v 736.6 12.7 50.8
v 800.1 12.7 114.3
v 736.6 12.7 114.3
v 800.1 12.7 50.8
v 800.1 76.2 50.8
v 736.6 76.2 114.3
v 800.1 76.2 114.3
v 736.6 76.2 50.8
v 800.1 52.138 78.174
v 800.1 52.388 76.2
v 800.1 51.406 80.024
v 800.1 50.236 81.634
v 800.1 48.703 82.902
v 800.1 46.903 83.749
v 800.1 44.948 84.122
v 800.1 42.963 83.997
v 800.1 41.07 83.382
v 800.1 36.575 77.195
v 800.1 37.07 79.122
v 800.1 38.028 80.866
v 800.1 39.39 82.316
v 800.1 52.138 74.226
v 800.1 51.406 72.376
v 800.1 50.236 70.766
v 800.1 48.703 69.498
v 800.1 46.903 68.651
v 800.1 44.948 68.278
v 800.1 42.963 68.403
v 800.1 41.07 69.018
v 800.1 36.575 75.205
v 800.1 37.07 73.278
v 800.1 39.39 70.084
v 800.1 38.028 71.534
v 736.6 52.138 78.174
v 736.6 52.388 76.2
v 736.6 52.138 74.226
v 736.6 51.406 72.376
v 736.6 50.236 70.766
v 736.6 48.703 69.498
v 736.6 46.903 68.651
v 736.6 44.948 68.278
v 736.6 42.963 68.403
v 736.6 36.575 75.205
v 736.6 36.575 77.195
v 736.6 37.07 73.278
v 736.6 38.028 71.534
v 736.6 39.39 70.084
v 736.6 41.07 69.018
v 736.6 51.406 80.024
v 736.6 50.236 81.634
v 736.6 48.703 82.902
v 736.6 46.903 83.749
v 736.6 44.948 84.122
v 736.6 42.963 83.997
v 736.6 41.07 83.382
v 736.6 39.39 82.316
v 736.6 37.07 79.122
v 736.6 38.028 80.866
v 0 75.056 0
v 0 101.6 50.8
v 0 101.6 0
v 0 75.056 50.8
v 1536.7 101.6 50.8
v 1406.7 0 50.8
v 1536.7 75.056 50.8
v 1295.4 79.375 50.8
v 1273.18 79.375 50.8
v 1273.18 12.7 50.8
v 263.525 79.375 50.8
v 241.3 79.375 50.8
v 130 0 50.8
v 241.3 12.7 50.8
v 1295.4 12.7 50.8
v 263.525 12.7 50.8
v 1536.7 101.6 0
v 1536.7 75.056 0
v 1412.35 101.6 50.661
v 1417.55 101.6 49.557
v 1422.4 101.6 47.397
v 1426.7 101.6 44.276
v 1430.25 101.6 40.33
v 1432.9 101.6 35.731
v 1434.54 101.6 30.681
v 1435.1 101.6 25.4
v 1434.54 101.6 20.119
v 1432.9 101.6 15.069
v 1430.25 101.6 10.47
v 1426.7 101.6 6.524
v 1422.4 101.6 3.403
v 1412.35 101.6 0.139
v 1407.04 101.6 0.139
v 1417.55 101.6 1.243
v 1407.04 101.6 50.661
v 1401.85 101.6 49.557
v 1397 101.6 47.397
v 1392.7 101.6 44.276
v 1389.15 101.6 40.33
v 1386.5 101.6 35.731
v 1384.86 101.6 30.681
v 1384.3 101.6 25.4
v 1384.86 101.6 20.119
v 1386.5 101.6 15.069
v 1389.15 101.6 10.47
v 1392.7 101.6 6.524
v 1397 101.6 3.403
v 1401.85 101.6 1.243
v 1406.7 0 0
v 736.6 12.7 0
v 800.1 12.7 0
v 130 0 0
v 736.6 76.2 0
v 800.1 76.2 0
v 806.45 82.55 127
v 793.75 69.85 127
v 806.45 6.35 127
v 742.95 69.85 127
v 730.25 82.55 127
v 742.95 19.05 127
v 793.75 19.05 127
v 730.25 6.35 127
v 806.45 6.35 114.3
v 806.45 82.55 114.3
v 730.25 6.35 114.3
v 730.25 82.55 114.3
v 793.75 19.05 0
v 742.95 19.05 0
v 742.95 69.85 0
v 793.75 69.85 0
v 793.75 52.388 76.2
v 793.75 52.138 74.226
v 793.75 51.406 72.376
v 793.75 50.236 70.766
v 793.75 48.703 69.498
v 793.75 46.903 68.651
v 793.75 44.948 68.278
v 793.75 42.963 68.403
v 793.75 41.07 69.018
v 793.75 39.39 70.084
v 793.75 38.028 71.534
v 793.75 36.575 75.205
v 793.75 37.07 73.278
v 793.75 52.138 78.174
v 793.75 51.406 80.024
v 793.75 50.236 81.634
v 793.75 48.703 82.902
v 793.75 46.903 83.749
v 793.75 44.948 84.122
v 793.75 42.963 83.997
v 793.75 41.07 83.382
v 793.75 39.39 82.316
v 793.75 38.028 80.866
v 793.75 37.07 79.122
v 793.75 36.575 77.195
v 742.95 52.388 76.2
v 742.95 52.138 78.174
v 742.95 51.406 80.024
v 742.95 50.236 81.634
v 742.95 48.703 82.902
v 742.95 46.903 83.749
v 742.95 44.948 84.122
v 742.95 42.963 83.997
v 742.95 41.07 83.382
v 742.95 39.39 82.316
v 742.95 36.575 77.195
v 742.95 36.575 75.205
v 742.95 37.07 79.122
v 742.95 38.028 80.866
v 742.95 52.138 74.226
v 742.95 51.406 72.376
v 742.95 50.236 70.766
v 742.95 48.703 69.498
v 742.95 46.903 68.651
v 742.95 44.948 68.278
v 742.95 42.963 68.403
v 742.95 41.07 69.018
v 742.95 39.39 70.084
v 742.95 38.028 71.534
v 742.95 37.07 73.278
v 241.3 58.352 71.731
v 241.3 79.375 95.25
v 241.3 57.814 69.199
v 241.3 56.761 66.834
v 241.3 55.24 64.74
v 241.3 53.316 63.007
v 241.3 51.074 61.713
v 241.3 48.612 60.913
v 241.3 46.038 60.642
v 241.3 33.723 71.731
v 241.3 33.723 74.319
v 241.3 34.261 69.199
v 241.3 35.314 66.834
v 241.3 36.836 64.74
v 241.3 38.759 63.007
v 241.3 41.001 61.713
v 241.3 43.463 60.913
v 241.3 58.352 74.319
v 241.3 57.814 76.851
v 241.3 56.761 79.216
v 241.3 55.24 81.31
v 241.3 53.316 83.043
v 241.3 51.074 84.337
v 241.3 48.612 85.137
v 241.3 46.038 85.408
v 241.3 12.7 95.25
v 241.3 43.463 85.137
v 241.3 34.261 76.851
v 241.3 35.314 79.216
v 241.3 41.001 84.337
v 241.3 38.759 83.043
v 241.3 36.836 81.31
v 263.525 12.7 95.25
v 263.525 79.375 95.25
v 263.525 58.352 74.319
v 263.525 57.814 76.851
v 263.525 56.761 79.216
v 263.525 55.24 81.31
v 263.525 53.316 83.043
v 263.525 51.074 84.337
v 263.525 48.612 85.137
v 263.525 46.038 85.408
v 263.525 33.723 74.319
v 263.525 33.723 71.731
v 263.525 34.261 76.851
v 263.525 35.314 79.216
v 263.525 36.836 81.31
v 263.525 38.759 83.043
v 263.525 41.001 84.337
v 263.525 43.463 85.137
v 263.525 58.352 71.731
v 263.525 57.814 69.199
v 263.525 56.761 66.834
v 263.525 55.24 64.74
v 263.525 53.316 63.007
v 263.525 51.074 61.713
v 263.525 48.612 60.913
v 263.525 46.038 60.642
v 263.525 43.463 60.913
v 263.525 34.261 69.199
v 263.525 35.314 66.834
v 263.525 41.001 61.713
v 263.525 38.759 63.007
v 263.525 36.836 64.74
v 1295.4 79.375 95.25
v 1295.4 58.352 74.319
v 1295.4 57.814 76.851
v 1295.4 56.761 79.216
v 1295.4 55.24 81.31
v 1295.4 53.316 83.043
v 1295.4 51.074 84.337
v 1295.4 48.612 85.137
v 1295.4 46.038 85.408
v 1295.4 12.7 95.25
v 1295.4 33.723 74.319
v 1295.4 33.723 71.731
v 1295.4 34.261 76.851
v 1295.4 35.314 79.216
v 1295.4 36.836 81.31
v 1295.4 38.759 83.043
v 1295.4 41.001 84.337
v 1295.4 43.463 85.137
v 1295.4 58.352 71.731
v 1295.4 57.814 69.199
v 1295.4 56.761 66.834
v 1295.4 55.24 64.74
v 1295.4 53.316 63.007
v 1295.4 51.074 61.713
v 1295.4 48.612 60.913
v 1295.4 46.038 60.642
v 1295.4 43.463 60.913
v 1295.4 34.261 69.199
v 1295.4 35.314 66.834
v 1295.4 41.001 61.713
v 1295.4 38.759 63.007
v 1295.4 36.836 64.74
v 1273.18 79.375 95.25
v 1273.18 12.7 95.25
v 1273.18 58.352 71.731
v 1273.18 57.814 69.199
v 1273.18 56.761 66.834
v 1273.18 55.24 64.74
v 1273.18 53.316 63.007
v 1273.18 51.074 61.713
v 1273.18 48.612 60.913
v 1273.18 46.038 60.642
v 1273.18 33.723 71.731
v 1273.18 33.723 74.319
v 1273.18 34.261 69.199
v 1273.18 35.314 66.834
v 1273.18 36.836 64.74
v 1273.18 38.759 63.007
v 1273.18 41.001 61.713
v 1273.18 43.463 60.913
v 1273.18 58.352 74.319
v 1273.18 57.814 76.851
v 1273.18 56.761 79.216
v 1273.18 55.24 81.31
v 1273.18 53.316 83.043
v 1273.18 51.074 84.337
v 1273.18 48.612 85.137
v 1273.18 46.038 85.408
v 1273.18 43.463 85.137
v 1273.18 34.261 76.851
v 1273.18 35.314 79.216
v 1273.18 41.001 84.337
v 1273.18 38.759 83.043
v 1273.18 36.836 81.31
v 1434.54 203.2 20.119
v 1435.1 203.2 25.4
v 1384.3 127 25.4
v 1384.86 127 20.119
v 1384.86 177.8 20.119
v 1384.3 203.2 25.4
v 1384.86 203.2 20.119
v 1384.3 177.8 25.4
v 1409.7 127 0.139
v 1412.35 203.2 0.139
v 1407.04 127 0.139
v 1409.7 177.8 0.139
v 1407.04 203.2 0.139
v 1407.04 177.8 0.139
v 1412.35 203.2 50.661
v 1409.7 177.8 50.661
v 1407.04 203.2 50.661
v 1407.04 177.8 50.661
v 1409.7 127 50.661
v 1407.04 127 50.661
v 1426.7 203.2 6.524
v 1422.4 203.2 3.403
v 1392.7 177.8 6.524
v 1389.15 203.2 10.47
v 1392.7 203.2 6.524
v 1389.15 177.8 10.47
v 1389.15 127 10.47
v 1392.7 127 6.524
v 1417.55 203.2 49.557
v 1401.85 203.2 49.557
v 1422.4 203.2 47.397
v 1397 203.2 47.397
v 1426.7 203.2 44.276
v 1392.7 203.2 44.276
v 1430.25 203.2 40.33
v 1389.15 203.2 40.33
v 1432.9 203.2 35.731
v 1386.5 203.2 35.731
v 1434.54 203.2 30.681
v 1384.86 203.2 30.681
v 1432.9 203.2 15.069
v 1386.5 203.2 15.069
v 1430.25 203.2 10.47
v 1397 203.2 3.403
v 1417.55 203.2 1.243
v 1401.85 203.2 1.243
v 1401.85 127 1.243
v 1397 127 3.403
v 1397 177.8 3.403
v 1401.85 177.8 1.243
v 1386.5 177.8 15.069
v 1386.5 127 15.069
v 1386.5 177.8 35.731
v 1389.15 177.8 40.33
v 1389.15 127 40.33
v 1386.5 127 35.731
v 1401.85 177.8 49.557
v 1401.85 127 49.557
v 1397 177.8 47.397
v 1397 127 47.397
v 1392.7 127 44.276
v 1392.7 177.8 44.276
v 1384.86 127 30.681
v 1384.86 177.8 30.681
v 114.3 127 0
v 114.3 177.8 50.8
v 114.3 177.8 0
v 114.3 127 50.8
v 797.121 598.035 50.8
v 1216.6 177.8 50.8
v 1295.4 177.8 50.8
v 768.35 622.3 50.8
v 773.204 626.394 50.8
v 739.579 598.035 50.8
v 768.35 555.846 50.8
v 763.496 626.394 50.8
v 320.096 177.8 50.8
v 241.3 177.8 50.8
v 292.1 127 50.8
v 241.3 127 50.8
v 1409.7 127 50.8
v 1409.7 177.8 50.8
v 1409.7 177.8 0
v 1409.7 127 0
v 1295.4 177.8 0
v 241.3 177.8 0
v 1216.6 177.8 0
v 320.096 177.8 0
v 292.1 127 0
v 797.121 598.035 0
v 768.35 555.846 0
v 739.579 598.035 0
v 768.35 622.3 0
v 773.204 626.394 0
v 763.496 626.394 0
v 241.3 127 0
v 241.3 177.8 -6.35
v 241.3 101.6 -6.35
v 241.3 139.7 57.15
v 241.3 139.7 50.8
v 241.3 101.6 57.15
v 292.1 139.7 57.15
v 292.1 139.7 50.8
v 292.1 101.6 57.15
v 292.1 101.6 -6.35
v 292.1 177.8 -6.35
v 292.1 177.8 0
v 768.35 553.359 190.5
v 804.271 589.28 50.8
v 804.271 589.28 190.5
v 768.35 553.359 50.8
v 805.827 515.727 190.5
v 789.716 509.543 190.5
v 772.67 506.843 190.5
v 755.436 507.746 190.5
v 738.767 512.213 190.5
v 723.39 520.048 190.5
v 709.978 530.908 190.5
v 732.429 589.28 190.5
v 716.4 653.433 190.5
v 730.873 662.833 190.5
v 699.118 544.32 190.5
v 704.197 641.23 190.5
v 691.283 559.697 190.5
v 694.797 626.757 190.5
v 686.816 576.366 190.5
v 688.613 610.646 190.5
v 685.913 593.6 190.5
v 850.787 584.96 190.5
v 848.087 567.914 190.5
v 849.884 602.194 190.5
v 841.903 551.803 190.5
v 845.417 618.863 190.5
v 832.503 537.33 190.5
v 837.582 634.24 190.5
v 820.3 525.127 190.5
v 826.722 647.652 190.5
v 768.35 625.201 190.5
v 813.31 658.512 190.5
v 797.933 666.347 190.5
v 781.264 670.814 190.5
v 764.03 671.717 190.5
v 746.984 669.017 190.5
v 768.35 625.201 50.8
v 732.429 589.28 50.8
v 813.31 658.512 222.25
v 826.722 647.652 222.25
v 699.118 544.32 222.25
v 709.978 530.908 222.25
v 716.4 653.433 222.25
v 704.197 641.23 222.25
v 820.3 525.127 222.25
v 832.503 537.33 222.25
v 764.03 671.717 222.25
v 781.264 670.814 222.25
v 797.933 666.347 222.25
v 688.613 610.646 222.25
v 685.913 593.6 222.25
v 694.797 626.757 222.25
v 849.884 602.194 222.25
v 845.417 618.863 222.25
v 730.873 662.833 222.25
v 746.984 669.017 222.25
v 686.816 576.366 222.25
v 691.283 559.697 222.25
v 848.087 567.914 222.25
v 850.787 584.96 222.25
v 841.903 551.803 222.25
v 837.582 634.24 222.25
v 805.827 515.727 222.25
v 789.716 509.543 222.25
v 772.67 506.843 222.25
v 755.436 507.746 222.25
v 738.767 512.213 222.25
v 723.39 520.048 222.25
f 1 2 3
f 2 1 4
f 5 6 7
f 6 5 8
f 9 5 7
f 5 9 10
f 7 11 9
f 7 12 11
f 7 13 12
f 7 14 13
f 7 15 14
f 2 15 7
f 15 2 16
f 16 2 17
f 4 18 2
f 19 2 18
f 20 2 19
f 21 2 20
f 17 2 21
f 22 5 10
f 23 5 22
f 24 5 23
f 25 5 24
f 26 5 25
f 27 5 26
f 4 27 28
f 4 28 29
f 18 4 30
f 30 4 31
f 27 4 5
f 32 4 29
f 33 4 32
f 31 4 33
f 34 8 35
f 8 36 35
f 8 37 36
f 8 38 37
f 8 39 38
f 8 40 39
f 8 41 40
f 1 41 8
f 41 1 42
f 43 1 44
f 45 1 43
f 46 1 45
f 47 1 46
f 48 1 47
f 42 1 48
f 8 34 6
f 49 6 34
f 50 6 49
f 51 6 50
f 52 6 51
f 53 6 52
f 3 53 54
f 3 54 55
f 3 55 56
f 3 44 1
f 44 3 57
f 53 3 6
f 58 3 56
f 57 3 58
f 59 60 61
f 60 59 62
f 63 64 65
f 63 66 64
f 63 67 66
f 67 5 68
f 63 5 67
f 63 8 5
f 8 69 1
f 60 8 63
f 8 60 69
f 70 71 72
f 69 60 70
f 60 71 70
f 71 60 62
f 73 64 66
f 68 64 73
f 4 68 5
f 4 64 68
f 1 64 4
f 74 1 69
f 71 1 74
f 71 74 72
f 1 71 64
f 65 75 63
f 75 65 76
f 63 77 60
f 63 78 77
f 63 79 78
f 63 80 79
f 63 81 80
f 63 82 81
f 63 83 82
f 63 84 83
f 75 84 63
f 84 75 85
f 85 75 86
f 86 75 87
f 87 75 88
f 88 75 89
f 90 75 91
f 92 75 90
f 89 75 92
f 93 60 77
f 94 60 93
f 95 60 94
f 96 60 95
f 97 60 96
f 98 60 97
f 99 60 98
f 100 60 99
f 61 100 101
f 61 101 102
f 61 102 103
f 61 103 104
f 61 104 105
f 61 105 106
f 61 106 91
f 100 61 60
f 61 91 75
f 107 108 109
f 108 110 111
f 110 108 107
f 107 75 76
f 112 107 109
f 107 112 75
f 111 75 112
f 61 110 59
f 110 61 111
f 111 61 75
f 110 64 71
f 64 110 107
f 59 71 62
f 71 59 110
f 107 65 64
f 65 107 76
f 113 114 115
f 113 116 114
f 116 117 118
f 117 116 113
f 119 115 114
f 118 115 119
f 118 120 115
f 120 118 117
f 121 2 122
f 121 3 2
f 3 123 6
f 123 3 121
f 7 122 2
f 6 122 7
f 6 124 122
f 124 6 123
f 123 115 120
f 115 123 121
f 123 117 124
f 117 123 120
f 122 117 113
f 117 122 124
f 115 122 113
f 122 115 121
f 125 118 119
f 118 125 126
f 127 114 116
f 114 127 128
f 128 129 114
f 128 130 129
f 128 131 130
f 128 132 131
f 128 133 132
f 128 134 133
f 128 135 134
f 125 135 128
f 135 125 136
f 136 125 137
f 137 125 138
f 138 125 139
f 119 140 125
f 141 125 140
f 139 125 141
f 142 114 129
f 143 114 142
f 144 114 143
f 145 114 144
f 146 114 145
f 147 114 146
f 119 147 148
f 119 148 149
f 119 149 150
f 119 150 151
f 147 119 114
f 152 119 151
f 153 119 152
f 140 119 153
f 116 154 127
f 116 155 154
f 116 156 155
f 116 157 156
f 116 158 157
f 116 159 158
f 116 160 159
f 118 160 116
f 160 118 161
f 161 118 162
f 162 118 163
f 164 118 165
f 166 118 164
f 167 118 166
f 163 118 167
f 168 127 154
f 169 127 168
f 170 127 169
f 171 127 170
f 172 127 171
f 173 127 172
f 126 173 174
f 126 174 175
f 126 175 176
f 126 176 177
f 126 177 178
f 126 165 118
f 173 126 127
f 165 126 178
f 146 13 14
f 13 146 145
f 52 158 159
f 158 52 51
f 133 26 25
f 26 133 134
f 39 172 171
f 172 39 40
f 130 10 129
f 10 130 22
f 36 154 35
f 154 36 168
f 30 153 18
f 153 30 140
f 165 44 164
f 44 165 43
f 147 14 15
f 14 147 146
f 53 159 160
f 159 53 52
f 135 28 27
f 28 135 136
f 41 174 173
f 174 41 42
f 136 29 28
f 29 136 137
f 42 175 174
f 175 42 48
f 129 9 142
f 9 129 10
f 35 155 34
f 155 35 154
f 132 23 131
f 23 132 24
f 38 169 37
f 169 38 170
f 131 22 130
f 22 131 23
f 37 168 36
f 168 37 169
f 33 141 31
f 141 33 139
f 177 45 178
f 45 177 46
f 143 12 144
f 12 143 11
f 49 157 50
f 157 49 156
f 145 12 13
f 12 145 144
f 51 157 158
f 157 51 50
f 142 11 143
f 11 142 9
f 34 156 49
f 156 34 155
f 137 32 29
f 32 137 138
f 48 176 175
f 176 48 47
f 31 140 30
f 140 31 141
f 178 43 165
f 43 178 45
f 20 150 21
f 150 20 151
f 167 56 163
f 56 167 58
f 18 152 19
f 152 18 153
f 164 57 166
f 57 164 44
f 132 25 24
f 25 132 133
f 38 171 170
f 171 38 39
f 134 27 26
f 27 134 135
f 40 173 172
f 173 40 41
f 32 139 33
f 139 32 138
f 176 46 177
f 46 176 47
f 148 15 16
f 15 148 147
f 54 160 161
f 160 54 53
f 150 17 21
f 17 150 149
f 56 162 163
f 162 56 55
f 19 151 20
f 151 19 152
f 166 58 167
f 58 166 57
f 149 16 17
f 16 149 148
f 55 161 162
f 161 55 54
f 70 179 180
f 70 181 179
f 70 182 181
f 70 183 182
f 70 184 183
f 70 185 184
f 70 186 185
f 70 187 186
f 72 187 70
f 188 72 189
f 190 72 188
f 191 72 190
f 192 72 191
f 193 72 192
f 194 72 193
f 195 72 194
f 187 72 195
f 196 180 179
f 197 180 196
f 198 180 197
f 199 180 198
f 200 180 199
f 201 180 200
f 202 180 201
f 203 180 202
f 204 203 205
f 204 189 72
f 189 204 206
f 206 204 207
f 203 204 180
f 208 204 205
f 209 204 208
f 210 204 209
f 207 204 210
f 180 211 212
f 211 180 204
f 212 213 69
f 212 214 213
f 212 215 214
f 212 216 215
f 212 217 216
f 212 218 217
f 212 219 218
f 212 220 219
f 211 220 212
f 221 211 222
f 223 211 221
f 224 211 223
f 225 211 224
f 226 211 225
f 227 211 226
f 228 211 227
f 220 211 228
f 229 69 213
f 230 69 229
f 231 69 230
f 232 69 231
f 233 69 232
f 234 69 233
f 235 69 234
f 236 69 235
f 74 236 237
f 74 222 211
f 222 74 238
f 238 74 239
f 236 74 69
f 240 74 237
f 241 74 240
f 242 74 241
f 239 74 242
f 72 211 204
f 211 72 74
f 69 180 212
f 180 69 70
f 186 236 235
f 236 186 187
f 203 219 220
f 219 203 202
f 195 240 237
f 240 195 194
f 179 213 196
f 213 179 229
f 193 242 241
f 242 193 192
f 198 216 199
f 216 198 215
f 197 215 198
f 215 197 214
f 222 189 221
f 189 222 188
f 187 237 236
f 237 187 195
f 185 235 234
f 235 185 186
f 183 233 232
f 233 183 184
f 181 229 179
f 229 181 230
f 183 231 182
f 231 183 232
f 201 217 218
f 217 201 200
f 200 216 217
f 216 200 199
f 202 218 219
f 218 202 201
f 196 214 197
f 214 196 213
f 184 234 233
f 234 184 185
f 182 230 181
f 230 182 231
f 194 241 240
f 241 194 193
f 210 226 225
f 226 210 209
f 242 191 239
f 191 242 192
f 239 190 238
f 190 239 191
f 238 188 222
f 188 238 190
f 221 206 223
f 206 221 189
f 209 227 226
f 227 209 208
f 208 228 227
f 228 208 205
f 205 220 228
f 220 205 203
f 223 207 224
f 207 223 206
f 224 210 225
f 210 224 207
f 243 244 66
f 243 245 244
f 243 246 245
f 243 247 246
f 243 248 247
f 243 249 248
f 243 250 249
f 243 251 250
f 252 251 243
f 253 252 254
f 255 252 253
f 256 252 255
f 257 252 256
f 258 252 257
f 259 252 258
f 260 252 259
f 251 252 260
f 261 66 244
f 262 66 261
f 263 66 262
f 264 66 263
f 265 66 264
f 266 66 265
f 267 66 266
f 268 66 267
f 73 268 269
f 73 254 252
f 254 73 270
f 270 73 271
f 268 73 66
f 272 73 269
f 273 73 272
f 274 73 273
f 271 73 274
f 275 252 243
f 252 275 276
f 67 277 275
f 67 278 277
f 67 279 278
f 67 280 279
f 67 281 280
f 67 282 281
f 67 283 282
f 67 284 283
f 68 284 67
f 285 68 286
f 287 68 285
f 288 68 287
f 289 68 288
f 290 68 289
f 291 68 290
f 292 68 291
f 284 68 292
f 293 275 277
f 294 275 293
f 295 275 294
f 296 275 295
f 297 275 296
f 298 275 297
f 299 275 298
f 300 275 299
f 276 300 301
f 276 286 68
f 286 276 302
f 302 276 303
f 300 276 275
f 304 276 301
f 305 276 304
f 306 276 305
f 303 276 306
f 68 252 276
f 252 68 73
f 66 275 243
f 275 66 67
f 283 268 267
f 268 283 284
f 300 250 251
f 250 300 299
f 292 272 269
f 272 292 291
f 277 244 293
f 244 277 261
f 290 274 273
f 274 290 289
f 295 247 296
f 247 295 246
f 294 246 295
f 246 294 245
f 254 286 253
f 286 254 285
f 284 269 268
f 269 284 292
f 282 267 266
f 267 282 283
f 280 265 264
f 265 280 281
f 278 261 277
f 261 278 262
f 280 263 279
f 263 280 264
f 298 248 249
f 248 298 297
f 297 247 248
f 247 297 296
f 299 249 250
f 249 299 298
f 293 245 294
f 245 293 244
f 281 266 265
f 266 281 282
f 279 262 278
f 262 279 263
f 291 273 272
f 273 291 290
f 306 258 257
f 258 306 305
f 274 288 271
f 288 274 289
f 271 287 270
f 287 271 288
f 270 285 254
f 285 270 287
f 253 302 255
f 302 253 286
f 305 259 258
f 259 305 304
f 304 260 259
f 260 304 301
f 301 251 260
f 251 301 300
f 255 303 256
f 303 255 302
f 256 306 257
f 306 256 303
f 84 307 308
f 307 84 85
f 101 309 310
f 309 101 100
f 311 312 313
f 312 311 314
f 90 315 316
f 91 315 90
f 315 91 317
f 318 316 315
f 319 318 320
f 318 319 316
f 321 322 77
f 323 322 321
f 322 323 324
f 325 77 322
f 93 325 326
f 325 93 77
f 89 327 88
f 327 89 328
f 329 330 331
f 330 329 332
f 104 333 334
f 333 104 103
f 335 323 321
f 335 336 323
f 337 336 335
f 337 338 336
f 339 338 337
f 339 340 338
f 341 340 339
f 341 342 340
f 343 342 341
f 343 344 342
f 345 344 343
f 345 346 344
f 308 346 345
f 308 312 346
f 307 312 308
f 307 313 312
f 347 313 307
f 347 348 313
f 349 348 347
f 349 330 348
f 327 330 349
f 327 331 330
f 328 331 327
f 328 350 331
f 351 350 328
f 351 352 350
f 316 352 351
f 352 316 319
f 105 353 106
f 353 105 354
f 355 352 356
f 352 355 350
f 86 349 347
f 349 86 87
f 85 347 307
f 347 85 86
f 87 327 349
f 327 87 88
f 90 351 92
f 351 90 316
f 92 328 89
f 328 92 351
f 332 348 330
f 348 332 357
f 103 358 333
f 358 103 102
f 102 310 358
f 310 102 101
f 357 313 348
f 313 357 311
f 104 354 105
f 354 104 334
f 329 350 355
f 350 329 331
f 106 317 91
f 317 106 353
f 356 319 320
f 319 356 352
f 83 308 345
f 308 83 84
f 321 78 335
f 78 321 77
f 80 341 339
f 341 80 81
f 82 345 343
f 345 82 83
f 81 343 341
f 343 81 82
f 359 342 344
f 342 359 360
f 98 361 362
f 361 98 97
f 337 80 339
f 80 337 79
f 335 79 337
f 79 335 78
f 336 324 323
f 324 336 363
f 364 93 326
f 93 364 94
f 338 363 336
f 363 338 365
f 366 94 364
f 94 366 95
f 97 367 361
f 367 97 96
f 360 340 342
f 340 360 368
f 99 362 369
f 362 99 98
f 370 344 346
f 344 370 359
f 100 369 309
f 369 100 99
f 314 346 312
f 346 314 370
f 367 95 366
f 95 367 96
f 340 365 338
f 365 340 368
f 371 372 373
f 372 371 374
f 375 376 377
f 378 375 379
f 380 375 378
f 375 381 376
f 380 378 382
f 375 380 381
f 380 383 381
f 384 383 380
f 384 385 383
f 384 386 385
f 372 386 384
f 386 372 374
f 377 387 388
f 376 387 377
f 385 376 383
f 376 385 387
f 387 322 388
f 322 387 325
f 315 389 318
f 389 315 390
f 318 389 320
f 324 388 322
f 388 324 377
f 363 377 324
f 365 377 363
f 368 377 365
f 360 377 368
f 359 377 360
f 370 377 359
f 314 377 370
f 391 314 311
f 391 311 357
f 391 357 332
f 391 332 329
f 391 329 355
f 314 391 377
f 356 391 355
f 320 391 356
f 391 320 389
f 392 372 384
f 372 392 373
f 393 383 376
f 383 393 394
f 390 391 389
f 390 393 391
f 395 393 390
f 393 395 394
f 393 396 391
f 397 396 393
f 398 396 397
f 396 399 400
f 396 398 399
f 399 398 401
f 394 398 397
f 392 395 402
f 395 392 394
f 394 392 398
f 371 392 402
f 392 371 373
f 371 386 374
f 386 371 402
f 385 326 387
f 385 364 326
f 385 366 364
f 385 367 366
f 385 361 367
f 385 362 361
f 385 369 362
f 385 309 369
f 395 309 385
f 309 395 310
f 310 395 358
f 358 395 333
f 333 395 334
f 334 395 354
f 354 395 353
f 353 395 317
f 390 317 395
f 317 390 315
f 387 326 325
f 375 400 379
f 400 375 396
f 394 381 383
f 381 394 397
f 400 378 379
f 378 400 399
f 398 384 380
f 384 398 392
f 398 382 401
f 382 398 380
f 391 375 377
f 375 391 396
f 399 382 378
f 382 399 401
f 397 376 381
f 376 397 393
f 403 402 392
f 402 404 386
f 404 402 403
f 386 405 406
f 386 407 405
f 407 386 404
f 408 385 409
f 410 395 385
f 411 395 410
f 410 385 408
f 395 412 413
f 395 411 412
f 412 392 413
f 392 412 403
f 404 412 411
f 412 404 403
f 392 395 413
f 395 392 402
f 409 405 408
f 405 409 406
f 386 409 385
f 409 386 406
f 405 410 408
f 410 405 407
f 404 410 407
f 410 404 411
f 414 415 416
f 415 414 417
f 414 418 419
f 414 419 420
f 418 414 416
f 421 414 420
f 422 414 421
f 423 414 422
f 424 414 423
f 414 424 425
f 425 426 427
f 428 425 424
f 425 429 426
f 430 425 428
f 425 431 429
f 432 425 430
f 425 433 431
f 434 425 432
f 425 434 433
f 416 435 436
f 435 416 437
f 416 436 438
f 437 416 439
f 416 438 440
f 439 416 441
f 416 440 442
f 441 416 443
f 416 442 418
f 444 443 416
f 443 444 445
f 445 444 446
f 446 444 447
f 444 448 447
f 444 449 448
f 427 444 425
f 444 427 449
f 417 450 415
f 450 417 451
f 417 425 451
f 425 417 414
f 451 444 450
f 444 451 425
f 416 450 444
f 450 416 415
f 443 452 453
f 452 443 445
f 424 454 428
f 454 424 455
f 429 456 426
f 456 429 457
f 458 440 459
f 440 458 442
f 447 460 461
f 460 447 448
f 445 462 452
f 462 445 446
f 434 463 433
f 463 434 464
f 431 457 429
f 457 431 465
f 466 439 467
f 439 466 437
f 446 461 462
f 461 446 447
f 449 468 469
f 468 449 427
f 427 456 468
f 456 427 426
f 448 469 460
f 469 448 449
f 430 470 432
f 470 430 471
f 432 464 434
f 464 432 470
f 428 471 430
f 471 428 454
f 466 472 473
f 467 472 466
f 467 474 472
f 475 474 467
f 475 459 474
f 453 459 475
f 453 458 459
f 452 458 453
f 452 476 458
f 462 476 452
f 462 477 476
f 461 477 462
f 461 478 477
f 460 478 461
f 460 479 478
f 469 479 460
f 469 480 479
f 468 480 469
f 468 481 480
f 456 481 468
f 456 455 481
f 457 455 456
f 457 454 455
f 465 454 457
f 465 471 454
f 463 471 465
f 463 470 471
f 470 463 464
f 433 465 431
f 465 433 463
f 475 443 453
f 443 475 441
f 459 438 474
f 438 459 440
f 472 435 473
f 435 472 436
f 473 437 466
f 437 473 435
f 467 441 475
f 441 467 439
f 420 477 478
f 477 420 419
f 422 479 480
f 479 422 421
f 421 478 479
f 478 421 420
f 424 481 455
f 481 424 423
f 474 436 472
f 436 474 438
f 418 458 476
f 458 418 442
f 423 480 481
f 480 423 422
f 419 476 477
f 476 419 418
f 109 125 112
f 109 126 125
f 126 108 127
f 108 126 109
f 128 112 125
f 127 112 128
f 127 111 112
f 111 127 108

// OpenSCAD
inch_to_mm = 25.4;

// measurements
oem_bumper_no_plastic = 50*inch_to_mm;
spacer = [6.5,1.25]*inch_to_mm;

bumper = [60.5*inch_to_mm, 4*inch_to_mm, 2*inch_to_mm];
angle = 60;
bumper_cut = [500, 155, 55];

receiver_outer = [0.5,3,3] * inch_to_mm;
receiver = [6, 2, 2] * inch_to_mm;
wall = 1/4 * inch_to_mm;

arm = [0, 2, 2] * inch_to_mm;

pin_size = ((7/8) + 0.1) * inch_to_mm;

shackle = [7/8, 21/8, 2+14/8] * inch_to_mm;

hinge = [1, 4] *inch_to_mm;

shackle_offset = (9.5)*inch_to_mm;

bracket = [2, 2+1/2, 1]*inch_to_mm;

module bracket() {
    translate([0,0,-2*inch_to_mm]) cube([2,0.25,2]*inch_to_mm);
    translate([0,2+1/4,-1/2]*inch_to_mm) cube([2,0.25,1/2]*inch_to_mm);
    cube(bracket);
}

module hinge() {
    cylinder(h=hinge[1], r=hinge[0]);
}

module arm(length) {
    cube(arm+[length,0,0]);
}

carrier_length = 5.5*inch_to_mm;
module carrier() {
    translate([-arm[1]/2,arm[2]/2,0]) rotate([90,90,0]) arm(carrier_length);
    cylinder(r=spacer[0]/2,h=spacer[1]);
}

module shackle() {
    difference() { 
        cube(shackle);
        translate([-2,21/16*inch_to_mm,(2+7/8)*inch_to_mm]) rotate([0,90,0]) cylinder(h=2*inch_to_mm,r=(pin_size/2));
    }
}

module receiver(solid = false) {
    difference() {
        union() {
            cube([receiver[0], receiver[1]+2*wall, receiver[2]+2*wall]);
            translate([receiver[0]-receiver_outer[0],-0.25*inch_to_mm,-0.25*inch_to_mm]) cube(receiver_outer);
        }
        if (!solid) translate([-1, wall, wall]) cube([receiver[0]+2, receiver[1], receiver[1]]);
        if (!solid) translate([4*inch_to_mm, -1, 1*inch_to_mm+wall]) rotate([0,90,90]) cylinder(h=3*inch_to_mm, r=(5/16)*inch_to_mm);
    }
}

difference () {
    cube(bumper);
    translate([130,0,-1]) rotate([0,0,90+angle]) cube(bumper_cut);
    mirror([1,0,0]) translate([-bumper[0]+130,0,-1]) rotate([0,0,90+angle]) cube(bumper_cut);
    translate([receiver[1]/2+wall+bumper[0]/2,3*inch_to_mm,-1*inch_to_mm])
    rotate([0,-90,90])
    receiver(true);
}

difference() {
    translate([bumper[0]/2+receiver[1]/2+wall,3*inch_to_mm,-1*inch_to_mm])
        rotate([0,-90,90])
        receiver();
    translate([0,0,-10000]) cube(10000);
}

translate([shackle_offset, 1/2*inch_to_mm, 0]) shackle();
translate([bumper[0],0,0]) mirror([1,0,0]) translate([shackle_offset, 1/2*inch_to_mm, 0]) shackle();

cross_bar = bumper[0]-2*shackle_offset+arm[1];
adj = (cross_bar-2*hinge[0])/2;
diag_bar = sqrt(pow(adj, 2) + pow(35/2*inch_to_mm,2));
ang = acos(adj/diag_bar);

translate([2*hinge[0]/2,0,0])
union() {
    translate([bumper[0]-6*hinge[0],bumper[1],bumper[2]-hinge[0]]) 
        rotate([-90,0,0]) 
        hinge();
    
    translate([shackle_offset-12*hinge[0]/2, bumper[1]+1*inch_to_mm,0]) 
        arm(cross_bar+15*hinge[0]/2);
    
    translate([shackle_offset-arm[1]/2,bumper[1]+1*inch_to_mm+arm[1],0]) 
        rotate([0,0,-90+ang]) 
        translate([arm[1],0,0]) 
        rotate([0,0,90]) 
            arm(diag_bar+1/4*inch_to_mm);
    
    translate([2*shackle_offset+cross_bar-3*hinge[0]/2,0,0]) 
        mirror([1,0,0]) 
        translate([shackle_offset+arm[1]/2+0.5*inch_to_mm,bumper[1]+1*inch_to_mm+arm[1],0]) 
        rotate([0,0,-90+ang]) 
        translate([arm[1],0,0]) 
        rotate([0,0,90]) 
            arm(diag_bar+1/4*inch_to_mm);
}

translate([shackle_offset,bumper[1]+bracket[2],-1/4*inch_to_mm]) rotate([90,0,0]) bracket();

translate([0*receiver[0]/2+1*bumper[0]/2+0*inch_to_mm,35/2*inch_to_mm+bumper[1]+1.7*inch_to_mm,7.5*inch_to_mm]) rotate([0,0,45]) carrier();

//translate([bumper[0]/2+inch_to_mm,0,0]) rotate([0,0,90]) arm(1000);
